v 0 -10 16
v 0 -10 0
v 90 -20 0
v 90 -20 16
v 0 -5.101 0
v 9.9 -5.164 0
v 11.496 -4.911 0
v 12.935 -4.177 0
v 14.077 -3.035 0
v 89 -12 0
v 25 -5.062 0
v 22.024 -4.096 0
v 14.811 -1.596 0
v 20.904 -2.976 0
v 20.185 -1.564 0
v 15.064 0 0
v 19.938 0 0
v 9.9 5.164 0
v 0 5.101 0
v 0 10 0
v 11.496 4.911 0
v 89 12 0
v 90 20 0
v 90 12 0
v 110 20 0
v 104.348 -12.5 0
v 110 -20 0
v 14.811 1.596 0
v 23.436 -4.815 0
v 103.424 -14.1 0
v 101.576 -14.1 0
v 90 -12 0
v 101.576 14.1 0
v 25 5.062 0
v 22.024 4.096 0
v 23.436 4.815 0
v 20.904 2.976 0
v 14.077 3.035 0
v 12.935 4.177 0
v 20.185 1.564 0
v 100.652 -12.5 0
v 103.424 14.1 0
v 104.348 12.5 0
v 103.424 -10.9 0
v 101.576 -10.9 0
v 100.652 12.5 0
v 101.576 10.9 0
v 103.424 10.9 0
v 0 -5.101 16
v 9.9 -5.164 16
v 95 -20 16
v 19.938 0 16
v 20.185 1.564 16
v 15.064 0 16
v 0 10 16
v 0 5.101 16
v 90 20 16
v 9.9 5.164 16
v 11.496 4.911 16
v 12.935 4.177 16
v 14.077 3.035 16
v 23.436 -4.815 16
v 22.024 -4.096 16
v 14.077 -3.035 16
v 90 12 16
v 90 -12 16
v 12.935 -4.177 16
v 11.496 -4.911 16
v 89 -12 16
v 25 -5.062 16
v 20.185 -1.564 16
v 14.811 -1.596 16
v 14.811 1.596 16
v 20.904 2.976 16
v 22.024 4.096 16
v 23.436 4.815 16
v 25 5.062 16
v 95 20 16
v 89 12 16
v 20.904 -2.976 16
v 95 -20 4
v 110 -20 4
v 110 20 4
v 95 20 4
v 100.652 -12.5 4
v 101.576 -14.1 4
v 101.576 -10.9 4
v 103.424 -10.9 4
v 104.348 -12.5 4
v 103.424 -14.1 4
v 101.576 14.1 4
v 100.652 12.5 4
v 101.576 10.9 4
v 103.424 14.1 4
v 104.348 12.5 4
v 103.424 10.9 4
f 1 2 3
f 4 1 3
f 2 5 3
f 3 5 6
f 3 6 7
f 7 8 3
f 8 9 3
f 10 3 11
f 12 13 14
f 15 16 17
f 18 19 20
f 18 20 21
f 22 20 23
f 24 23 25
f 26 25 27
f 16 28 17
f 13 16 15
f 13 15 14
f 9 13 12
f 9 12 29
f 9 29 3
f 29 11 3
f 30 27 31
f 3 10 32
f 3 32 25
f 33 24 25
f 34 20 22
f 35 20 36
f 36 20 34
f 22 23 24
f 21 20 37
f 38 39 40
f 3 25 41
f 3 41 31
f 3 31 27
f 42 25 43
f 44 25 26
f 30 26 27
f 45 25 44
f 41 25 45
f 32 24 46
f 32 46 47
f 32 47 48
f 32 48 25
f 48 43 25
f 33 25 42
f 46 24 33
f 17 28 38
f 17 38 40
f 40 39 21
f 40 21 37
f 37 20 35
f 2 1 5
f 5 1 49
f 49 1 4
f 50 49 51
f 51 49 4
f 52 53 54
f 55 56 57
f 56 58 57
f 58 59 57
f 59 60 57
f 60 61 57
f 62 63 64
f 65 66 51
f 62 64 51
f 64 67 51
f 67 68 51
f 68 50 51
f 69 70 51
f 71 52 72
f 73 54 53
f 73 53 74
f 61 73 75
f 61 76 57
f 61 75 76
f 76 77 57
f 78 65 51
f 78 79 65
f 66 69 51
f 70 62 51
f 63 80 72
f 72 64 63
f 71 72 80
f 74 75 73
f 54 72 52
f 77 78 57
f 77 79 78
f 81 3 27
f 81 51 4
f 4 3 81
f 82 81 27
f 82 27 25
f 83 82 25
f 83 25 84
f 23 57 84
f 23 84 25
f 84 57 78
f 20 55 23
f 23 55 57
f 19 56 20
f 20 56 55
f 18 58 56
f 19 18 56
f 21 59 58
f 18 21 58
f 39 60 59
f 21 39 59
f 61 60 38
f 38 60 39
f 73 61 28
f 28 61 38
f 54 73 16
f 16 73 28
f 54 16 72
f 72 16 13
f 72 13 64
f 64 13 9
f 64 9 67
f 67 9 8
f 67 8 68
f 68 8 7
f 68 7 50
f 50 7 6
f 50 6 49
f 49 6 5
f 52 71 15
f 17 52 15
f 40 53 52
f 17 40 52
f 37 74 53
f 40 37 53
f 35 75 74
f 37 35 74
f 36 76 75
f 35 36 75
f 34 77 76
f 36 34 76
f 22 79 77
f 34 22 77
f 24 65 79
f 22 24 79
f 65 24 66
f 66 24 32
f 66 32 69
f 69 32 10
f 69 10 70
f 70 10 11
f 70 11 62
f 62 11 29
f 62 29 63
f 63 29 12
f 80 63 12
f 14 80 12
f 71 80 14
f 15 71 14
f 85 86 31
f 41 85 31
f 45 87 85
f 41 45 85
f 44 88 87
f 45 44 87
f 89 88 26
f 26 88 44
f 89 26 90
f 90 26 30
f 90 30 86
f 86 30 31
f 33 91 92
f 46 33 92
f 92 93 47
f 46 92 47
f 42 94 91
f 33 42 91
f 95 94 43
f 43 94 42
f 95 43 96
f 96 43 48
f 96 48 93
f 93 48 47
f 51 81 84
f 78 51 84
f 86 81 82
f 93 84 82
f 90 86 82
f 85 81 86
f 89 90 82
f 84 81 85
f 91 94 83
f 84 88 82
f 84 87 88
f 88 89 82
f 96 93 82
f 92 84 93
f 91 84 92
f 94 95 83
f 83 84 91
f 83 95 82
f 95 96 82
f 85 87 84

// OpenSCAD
//-----------------------------------------------------------------------------------
// printed spool holder
// derived from Mendel90 spool holder (customizable)
// (http://www.thingiverse.com/thing:77004)
// by CookieMonster
//
// scad written from scratch because I am still learning
// see https://github.com/Stemer114/things/tree/master/reprap
// (c) 2013 by Stemer114
// License: licensed under the Creative Commons - GNU GPL license.
//          http://www.gnu.org/licenses/gpl-2.0.html
//-----------------------------------------------------------------------------------

//-----------------------------------------------------------------------------------
//display settings
//-----------------------------------------------------------------------------------

//color settings

//-----------------------------------------------------------------------------------
//global configuration settings
//-----------------------------------------------------------------------------------
de = 0.1; //delta param, so differences are scaled and do not become manifold
fn_hole = 12;  //fn setting for round holes/bores (polyhole)
ex = 0;  //offset for Explosivdarstellung, set to 0 for none

//-----------------------------------------------------------------------------------
//configuration settings
//-----------------------------------------------------------------------------------

P1 = 90;  //spool holder length atop stays
P2 = 5;   //bracket thickness
P3 = 15;  //bracket depth
P4 = 40;  //bracket length

P5 = 10.2;  //hole dia (for rod)
P6 = 15;    //hole cutout length
P7 = 20;    //holder top width
P8 = 20;    //holder top length
P9 = P1-P8; //holder bottom length
P101 = 5;    //arm upper thickness (after cutout has been removed)
P102 = 8;    //arm lower thickness

P20 = 4;    //bracket thickness against stay
P21 = 12;   //stay (MDF) thickness
P22 = P20+P21;  //spool holder thickness

P30 = 3.2;  //fixing hole dia
P31 = 25;   //fixing hole spacing apart


//-----------------------------------------------------------------------------------
// libraries
//-----------------------------------------------------------------------------------
//include <lib/common.scad>

//-----------------------------------------------------------------------------------
// main rendering
//-----------------------------------------------------------------------------------


//transparent 10mm cube for debugging
//translate([0, 0, -10])
//% cube(10, 10, 10);

HolderTop();


//-----------------------------------------------------------------------------------
// modules
//-----------------------------------------------------------------------------------

module HolderTop()
{
    difference()
    {
        union()
        {
            //holder top is convex hull of two cubes
            hull() {
                translate([0, -P7/2, 0])
                    cube([P8, P7, P22], center=false);
                translate([P7+P9, -P4/2, 0])
                    cube([P2, P4, P22], center=false);
            }

            //bracket lower part which will rest against stays
            translate([P8+P9+P2, -P4/2, 0])
                cube([P3, P4, P20], center=false);
 

        }  //end union

        union()
        {
            //fixing holes in mounting bracket
            translate([P1+P2+P3/2, P31/2, -de])
                polyhole(P20+2*de, P30);
            translate([P1+P2+P3/2, -P31/2, -de])
                polyhole(P20+2*de, P30);

            //slot for rod
            hull() {
                translate([-P5/2+P6, 0, -de])
                    polyhole(P22+2*de, P5);
                translate([-de, -P5/2, -de])
                    cube([10*de, P5, P22+2*de], center=false);
            }

            //cutout in holder
            hull() {
                translate([(P7-2*P101)/2+P8, 0, -de])
                    polyhole(P22+2*de, P7-2*P101);
                translate([-10*de+P1, -(P4-2*P102)/2, -de])
                    cube([10*de, P4-2*P102, P22+2*de], center=false);
            }
 
        } //end union

    }  //end difference
}  //end module HolderBase

module Bracket()
{
    difference()
    {
        union()
        {
            CubeRounded(P5, P4, P12, P20, corners=[1, 1, 0, 0]);
            //cube([P5, P4, P12], center=false);
        }

        union()
        {
            hull() {
            translate([(P5-P7)/2+P6/2, P4/2, -de])
                polyhole(P12+2*de, P6);
            translate([(P5-P7)/2+P7-P6/2, P4/2, -de])
                polyhole(P12+2*de, P6);
            }


        }
    }
}


//-----------------------------------------------------------------------------------
// utility functions
//-----------------------------------------------------------------------------------

//polyhole by nophead
//see http://hydraraptor.blogspot.de/2011/02/polyholes.html
module polyhole(h, d) {
    n = max(round(2 * d),3);
    rotate([0,0,180])
        cylinder(h = h, r = (d / 2) / cos (180 / n), $fn = n);
}


/* creates a cube with rounded corners in z direction
   with the corners array it can be specified, which corners are rounded
   (default: all)
   */
module CubeRounded(x, y, z, r, corners=[1, 1, 1, 1]) {
    $fn=20;

    hull() {
        //lower left
        translate([r, r, 0]) 
            CubeCorner(r, z, corners[0]);

        //lower right
        translate([x-r, r, 0])
            CubeCorner(r, z, corners[1]);

        //upper left
        translate([r, y-r, 0])
            CubeCorner(r, z, corners[2]);

        //upper right
        translate([x-r, y-r, 0])
            CubeCorner(r, z, corners[3]);
    }
}

module CubeCorner(r, z, cornermode) {
    if (cornermode==1) {
        cylinder(h=z, r=r);
    } else {
        translate([0, 0, z/2])
            cube([2*r, 2*r, z], center=true);
    }
} 
